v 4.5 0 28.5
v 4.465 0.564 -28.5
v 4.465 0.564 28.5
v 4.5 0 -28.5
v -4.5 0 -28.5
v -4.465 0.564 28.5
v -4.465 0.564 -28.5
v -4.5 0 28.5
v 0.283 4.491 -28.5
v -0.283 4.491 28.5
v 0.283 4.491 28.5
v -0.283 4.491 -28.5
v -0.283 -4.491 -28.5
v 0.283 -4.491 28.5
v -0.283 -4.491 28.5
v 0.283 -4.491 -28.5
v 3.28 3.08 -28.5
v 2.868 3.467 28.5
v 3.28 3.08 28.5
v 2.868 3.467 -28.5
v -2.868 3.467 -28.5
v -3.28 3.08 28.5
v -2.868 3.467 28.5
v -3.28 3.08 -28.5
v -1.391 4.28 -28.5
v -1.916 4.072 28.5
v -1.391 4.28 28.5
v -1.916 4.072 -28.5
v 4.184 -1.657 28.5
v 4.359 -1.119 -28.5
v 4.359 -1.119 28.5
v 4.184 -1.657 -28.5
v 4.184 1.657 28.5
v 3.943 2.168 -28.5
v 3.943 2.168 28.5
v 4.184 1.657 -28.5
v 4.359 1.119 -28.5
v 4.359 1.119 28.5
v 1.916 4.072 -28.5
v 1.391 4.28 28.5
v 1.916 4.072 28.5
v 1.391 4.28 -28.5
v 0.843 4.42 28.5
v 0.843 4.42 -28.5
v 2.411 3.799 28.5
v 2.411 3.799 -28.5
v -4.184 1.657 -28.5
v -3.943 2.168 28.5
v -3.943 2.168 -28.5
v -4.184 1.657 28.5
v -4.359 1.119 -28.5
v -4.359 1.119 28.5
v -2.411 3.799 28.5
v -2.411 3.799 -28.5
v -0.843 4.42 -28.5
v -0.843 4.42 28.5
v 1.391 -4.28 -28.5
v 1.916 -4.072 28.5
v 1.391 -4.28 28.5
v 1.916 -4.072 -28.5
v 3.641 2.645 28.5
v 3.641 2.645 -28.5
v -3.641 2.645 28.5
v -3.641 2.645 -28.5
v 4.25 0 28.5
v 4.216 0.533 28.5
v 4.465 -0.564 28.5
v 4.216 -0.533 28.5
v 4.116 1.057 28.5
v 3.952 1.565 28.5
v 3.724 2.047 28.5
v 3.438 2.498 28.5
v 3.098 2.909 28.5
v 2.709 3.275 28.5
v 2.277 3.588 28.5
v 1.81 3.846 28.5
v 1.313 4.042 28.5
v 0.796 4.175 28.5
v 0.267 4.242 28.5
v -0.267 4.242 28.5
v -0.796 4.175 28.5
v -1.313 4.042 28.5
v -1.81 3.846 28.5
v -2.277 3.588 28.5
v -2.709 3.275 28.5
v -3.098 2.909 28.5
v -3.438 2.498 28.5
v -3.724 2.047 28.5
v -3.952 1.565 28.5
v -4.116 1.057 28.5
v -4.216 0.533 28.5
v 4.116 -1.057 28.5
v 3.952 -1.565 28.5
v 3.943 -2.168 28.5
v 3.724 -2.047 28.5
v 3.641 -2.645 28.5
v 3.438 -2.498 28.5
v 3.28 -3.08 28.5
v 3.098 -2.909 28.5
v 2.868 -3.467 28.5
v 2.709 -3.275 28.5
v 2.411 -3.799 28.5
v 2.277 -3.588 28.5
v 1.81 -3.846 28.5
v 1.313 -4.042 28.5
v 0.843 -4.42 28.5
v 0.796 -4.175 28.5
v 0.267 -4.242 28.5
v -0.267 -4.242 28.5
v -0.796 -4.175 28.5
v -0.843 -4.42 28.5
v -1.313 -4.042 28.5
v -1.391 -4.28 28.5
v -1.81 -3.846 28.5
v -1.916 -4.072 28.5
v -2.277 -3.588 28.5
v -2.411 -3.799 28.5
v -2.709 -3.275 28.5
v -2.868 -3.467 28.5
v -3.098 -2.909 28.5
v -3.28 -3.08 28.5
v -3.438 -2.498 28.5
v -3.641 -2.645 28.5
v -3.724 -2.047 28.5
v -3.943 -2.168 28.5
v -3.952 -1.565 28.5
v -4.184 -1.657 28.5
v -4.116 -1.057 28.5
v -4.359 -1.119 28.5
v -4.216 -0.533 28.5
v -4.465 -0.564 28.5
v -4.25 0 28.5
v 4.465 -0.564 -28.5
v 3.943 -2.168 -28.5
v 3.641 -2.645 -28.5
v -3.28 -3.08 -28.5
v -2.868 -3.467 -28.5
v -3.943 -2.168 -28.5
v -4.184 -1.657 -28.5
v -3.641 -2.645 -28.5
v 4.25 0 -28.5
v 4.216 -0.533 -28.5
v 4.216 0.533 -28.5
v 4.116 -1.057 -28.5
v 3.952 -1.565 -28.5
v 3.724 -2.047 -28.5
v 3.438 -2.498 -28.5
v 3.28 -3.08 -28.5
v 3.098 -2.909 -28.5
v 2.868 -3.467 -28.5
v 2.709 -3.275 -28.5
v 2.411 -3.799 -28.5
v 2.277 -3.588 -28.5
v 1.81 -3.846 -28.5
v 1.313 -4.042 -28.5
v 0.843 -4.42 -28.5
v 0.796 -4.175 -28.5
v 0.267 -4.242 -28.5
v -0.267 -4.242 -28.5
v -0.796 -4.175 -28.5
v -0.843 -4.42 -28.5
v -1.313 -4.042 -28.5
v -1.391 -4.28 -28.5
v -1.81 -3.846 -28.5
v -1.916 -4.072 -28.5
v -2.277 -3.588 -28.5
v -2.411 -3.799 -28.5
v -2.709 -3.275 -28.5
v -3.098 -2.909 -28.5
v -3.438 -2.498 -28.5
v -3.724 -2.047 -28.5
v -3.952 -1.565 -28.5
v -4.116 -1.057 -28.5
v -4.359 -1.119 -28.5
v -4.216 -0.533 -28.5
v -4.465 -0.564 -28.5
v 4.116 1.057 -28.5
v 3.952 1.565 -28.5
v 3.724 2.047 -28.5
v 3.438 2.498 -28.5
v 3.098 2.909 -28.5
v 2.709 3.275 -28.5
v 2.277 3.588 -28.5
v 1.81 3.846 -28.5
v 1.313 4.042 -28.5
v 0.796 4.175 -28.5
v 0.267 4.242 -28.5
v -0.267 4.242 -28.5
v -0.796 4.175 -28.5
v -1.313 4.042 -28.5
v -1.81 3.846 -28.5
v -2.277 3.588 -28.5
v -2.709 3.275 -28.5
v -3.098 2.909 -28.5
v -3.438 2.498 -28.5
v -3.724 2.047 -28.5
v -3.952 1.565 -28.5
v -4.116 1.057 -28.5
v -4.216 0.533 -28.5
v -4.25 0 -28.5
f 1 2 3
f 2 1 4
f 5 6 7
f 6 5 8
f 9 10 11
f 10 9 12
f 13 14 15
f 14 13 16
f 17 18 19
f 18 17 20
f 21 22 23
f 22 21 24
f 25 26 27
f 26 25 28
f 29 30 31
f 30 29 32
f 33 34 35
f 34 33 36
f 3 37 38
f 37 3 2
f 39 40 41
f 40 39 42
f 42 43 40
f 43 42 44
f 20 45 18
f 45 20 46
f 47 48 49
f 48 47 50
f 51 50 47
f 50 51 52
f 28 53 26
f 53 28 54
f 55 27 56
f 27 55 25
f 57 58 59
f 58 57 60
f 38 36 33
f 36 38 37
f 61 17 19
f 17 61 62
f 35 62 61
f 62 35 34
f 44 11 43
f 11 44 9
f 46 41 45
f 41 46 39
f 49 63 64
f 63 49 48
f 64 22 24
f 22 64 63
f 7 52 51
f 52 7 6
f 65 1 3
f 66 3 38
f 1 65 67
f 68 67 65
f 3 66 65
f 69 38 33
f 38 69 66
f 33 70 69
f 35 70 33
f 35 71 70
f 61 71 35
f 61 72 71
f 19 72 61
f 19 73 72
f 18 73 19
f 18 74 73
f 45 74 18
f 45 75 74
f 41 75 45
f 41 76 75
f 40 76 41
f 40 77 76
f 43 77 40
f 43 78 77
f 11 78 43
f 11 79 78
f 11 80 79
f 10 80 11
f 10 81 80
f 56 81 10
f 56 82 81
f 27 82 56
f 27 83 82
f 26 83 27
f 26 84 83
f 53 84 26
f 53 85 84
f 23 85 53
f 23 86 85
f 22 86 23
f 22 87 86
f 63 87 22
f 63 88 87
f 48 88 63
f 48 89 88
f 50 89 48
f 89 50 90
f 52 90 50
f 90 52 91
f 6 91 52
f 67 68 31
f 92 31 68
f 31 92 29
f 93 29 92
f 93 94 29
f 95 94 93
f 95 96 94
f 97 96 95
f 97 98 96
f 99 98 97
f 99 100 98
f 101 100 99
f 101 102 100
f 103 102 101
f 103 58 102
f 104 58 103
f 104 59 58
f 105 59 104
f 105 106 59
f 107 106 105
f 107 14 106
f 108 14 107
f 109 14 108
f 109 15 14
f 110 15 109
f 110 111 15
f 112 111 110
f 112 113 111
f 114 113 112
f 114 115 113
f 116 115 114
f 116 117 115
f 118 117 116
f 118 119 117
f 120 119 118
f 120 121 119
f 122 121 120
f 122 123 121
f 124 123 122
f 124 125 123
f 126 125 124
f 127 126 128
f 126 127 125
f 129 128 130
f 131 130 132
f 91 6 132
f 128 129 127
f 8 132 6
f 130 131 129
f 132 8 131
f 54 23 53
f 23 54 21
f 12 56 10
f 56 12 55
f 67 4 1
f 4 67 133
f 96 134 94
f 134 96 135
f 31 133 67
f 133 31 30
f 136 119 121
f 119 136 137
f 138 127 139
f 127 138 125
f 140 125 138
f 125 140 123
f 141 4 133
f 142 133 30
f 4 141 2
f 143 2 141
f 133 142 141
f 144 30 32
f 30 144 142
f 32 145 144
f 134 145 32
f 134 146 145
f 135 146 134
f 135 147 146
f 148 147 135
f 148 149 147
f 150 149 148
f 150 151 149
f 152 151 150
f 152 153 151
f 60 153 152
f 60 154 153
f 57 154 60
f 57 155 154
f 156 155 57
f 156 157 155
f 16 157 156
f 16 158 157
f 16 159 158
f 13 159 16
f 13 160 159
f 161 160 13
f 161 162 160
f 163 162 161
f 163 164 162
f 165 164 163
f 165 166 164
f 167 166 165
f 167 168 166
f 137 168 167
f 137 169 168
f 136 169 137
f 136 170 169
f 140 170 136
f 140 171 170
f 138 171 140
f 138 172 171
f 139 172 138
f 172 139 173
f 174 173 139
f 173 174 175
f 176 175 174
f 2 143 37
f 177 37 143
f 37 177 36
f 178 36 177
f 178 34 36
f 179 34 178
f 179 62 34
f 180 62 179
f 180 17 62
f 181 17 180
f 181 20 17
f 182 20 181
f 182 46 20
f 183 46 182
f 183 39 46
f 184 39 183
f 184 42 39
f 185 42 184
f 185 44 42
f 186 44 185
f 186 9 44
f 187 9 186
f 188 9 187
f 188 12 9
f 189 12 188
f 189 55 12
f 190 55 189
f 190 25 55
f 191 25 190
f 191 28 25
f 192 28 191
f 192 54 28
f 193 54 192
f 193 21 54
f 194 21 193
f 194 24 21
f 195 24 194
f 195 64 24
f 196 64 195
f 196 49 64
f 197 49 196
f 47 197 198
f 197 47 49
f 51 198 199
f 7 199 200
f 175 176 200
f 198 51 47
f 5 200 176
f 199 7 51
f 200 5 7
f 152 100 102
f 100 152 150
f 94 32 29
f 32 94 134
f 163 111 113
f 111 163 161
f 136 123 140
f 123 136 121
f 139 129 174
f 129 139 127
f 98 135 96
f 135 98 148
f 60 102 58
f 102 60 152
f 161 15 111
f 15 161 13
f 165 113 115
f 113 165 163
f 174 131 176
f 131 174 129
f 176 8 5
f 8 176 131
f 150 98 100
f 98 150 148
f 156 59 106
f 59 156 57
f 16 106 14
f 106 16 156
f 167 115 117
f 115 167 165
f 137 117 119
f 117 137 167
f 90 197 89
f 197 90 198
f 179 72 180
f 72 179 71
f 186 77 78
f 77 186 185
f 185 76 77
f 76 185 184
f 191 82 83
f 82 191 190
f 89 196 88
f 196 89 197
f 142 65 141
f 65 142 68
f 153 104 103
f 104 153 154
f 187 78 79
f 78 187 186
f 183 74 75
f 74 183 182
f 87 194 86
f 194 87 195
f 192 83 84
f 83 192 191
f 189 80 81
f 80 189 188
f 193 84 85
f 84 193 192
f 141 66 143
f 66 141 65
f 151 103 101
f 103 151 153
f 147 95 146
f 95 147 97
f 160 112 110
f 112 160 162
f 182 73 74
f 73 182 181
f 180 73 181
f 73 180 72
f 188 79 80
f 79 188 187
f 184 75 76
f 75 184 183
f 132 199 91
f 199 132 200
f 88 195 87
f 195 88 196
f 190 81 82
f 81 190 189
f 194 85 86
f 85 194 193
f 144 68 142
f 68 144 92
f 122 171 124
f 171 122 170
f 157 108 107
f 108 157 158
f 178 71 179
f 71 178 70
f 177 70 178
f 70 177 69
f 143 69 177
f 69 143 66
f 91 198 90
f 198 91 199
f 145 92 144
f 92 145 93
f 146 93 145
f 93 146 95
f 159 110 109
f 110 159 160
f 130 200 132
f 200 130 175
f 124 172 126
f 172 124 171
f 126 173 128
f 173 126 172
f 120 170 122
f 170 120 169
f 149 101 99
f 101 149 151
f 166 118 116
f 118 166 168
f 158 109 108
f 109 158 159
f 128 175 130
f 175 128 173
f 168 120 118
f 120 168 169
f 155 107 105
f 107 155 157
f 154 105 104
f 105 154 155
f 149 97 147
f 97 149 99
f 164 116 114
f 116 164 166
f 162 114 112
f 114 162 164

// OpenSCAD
$fn = 50;


difference() {
	union() {
		translate(v = [0, 0, -28.5000000000]) {
			cylinder(h = 57, r = 4.5000000000);
		}
	}
	union() {
		translate(v = [0, 0, -100.0000000000]) {
			cylinder(h = 200, r = 4.2500000000);
		}
	}
}
